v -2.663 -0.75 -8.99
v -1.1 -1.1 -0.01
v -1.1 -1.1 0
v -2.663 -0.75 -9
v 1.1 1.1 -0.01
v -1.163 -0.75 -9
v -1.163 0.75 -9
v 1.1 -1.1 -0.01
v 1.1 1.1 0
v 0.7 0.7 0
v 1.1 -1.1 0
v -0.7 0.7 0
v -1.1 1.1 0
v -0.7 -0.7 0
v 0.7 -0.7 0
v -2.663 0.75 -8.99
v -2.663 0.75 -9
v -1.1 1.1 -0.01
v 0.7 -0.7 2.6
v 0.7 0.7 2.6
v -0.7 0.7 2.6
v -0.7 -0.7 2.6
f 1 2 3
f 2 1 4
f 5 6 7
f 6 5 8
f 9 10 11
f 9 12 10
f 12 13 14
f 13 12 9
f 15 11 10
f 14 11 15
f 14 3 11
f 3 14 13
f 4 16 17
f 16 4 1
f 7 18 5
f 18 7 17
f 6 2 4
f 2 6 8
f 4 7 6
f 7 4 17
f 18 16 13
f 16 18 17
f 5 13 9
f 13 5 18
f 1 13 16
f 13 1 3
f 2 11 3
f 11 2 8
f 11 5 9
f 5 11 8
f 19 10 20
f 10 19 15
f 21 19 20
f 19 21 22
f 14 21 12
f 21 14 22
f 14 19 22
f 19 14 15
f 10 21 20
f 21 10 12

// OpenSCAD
// TV_Console_Leg.stl  -  Store Versile room frame (Rev C)
// Quantity: 4   Filament: White (e.g. PLA Basic Jade White / Matte Ivory White)
// Print: layer 0.12 mm, infill 100%, 2 walls, brim 3 mm, NO supports
// Orientation: flat  (as installed)
// Notes: Print 4 together with a 3 mm brim, slow small-layer cooling on.
// The library draws parts with their front toward +Y; mirror([0,1,0]) makes the real
// part face the viewer correctly (see build.py). Edit dimensions in versile_parts.scad.
use <../versile_parts.scad>

mirror([0, 1, 0]) tv_console_leg();
